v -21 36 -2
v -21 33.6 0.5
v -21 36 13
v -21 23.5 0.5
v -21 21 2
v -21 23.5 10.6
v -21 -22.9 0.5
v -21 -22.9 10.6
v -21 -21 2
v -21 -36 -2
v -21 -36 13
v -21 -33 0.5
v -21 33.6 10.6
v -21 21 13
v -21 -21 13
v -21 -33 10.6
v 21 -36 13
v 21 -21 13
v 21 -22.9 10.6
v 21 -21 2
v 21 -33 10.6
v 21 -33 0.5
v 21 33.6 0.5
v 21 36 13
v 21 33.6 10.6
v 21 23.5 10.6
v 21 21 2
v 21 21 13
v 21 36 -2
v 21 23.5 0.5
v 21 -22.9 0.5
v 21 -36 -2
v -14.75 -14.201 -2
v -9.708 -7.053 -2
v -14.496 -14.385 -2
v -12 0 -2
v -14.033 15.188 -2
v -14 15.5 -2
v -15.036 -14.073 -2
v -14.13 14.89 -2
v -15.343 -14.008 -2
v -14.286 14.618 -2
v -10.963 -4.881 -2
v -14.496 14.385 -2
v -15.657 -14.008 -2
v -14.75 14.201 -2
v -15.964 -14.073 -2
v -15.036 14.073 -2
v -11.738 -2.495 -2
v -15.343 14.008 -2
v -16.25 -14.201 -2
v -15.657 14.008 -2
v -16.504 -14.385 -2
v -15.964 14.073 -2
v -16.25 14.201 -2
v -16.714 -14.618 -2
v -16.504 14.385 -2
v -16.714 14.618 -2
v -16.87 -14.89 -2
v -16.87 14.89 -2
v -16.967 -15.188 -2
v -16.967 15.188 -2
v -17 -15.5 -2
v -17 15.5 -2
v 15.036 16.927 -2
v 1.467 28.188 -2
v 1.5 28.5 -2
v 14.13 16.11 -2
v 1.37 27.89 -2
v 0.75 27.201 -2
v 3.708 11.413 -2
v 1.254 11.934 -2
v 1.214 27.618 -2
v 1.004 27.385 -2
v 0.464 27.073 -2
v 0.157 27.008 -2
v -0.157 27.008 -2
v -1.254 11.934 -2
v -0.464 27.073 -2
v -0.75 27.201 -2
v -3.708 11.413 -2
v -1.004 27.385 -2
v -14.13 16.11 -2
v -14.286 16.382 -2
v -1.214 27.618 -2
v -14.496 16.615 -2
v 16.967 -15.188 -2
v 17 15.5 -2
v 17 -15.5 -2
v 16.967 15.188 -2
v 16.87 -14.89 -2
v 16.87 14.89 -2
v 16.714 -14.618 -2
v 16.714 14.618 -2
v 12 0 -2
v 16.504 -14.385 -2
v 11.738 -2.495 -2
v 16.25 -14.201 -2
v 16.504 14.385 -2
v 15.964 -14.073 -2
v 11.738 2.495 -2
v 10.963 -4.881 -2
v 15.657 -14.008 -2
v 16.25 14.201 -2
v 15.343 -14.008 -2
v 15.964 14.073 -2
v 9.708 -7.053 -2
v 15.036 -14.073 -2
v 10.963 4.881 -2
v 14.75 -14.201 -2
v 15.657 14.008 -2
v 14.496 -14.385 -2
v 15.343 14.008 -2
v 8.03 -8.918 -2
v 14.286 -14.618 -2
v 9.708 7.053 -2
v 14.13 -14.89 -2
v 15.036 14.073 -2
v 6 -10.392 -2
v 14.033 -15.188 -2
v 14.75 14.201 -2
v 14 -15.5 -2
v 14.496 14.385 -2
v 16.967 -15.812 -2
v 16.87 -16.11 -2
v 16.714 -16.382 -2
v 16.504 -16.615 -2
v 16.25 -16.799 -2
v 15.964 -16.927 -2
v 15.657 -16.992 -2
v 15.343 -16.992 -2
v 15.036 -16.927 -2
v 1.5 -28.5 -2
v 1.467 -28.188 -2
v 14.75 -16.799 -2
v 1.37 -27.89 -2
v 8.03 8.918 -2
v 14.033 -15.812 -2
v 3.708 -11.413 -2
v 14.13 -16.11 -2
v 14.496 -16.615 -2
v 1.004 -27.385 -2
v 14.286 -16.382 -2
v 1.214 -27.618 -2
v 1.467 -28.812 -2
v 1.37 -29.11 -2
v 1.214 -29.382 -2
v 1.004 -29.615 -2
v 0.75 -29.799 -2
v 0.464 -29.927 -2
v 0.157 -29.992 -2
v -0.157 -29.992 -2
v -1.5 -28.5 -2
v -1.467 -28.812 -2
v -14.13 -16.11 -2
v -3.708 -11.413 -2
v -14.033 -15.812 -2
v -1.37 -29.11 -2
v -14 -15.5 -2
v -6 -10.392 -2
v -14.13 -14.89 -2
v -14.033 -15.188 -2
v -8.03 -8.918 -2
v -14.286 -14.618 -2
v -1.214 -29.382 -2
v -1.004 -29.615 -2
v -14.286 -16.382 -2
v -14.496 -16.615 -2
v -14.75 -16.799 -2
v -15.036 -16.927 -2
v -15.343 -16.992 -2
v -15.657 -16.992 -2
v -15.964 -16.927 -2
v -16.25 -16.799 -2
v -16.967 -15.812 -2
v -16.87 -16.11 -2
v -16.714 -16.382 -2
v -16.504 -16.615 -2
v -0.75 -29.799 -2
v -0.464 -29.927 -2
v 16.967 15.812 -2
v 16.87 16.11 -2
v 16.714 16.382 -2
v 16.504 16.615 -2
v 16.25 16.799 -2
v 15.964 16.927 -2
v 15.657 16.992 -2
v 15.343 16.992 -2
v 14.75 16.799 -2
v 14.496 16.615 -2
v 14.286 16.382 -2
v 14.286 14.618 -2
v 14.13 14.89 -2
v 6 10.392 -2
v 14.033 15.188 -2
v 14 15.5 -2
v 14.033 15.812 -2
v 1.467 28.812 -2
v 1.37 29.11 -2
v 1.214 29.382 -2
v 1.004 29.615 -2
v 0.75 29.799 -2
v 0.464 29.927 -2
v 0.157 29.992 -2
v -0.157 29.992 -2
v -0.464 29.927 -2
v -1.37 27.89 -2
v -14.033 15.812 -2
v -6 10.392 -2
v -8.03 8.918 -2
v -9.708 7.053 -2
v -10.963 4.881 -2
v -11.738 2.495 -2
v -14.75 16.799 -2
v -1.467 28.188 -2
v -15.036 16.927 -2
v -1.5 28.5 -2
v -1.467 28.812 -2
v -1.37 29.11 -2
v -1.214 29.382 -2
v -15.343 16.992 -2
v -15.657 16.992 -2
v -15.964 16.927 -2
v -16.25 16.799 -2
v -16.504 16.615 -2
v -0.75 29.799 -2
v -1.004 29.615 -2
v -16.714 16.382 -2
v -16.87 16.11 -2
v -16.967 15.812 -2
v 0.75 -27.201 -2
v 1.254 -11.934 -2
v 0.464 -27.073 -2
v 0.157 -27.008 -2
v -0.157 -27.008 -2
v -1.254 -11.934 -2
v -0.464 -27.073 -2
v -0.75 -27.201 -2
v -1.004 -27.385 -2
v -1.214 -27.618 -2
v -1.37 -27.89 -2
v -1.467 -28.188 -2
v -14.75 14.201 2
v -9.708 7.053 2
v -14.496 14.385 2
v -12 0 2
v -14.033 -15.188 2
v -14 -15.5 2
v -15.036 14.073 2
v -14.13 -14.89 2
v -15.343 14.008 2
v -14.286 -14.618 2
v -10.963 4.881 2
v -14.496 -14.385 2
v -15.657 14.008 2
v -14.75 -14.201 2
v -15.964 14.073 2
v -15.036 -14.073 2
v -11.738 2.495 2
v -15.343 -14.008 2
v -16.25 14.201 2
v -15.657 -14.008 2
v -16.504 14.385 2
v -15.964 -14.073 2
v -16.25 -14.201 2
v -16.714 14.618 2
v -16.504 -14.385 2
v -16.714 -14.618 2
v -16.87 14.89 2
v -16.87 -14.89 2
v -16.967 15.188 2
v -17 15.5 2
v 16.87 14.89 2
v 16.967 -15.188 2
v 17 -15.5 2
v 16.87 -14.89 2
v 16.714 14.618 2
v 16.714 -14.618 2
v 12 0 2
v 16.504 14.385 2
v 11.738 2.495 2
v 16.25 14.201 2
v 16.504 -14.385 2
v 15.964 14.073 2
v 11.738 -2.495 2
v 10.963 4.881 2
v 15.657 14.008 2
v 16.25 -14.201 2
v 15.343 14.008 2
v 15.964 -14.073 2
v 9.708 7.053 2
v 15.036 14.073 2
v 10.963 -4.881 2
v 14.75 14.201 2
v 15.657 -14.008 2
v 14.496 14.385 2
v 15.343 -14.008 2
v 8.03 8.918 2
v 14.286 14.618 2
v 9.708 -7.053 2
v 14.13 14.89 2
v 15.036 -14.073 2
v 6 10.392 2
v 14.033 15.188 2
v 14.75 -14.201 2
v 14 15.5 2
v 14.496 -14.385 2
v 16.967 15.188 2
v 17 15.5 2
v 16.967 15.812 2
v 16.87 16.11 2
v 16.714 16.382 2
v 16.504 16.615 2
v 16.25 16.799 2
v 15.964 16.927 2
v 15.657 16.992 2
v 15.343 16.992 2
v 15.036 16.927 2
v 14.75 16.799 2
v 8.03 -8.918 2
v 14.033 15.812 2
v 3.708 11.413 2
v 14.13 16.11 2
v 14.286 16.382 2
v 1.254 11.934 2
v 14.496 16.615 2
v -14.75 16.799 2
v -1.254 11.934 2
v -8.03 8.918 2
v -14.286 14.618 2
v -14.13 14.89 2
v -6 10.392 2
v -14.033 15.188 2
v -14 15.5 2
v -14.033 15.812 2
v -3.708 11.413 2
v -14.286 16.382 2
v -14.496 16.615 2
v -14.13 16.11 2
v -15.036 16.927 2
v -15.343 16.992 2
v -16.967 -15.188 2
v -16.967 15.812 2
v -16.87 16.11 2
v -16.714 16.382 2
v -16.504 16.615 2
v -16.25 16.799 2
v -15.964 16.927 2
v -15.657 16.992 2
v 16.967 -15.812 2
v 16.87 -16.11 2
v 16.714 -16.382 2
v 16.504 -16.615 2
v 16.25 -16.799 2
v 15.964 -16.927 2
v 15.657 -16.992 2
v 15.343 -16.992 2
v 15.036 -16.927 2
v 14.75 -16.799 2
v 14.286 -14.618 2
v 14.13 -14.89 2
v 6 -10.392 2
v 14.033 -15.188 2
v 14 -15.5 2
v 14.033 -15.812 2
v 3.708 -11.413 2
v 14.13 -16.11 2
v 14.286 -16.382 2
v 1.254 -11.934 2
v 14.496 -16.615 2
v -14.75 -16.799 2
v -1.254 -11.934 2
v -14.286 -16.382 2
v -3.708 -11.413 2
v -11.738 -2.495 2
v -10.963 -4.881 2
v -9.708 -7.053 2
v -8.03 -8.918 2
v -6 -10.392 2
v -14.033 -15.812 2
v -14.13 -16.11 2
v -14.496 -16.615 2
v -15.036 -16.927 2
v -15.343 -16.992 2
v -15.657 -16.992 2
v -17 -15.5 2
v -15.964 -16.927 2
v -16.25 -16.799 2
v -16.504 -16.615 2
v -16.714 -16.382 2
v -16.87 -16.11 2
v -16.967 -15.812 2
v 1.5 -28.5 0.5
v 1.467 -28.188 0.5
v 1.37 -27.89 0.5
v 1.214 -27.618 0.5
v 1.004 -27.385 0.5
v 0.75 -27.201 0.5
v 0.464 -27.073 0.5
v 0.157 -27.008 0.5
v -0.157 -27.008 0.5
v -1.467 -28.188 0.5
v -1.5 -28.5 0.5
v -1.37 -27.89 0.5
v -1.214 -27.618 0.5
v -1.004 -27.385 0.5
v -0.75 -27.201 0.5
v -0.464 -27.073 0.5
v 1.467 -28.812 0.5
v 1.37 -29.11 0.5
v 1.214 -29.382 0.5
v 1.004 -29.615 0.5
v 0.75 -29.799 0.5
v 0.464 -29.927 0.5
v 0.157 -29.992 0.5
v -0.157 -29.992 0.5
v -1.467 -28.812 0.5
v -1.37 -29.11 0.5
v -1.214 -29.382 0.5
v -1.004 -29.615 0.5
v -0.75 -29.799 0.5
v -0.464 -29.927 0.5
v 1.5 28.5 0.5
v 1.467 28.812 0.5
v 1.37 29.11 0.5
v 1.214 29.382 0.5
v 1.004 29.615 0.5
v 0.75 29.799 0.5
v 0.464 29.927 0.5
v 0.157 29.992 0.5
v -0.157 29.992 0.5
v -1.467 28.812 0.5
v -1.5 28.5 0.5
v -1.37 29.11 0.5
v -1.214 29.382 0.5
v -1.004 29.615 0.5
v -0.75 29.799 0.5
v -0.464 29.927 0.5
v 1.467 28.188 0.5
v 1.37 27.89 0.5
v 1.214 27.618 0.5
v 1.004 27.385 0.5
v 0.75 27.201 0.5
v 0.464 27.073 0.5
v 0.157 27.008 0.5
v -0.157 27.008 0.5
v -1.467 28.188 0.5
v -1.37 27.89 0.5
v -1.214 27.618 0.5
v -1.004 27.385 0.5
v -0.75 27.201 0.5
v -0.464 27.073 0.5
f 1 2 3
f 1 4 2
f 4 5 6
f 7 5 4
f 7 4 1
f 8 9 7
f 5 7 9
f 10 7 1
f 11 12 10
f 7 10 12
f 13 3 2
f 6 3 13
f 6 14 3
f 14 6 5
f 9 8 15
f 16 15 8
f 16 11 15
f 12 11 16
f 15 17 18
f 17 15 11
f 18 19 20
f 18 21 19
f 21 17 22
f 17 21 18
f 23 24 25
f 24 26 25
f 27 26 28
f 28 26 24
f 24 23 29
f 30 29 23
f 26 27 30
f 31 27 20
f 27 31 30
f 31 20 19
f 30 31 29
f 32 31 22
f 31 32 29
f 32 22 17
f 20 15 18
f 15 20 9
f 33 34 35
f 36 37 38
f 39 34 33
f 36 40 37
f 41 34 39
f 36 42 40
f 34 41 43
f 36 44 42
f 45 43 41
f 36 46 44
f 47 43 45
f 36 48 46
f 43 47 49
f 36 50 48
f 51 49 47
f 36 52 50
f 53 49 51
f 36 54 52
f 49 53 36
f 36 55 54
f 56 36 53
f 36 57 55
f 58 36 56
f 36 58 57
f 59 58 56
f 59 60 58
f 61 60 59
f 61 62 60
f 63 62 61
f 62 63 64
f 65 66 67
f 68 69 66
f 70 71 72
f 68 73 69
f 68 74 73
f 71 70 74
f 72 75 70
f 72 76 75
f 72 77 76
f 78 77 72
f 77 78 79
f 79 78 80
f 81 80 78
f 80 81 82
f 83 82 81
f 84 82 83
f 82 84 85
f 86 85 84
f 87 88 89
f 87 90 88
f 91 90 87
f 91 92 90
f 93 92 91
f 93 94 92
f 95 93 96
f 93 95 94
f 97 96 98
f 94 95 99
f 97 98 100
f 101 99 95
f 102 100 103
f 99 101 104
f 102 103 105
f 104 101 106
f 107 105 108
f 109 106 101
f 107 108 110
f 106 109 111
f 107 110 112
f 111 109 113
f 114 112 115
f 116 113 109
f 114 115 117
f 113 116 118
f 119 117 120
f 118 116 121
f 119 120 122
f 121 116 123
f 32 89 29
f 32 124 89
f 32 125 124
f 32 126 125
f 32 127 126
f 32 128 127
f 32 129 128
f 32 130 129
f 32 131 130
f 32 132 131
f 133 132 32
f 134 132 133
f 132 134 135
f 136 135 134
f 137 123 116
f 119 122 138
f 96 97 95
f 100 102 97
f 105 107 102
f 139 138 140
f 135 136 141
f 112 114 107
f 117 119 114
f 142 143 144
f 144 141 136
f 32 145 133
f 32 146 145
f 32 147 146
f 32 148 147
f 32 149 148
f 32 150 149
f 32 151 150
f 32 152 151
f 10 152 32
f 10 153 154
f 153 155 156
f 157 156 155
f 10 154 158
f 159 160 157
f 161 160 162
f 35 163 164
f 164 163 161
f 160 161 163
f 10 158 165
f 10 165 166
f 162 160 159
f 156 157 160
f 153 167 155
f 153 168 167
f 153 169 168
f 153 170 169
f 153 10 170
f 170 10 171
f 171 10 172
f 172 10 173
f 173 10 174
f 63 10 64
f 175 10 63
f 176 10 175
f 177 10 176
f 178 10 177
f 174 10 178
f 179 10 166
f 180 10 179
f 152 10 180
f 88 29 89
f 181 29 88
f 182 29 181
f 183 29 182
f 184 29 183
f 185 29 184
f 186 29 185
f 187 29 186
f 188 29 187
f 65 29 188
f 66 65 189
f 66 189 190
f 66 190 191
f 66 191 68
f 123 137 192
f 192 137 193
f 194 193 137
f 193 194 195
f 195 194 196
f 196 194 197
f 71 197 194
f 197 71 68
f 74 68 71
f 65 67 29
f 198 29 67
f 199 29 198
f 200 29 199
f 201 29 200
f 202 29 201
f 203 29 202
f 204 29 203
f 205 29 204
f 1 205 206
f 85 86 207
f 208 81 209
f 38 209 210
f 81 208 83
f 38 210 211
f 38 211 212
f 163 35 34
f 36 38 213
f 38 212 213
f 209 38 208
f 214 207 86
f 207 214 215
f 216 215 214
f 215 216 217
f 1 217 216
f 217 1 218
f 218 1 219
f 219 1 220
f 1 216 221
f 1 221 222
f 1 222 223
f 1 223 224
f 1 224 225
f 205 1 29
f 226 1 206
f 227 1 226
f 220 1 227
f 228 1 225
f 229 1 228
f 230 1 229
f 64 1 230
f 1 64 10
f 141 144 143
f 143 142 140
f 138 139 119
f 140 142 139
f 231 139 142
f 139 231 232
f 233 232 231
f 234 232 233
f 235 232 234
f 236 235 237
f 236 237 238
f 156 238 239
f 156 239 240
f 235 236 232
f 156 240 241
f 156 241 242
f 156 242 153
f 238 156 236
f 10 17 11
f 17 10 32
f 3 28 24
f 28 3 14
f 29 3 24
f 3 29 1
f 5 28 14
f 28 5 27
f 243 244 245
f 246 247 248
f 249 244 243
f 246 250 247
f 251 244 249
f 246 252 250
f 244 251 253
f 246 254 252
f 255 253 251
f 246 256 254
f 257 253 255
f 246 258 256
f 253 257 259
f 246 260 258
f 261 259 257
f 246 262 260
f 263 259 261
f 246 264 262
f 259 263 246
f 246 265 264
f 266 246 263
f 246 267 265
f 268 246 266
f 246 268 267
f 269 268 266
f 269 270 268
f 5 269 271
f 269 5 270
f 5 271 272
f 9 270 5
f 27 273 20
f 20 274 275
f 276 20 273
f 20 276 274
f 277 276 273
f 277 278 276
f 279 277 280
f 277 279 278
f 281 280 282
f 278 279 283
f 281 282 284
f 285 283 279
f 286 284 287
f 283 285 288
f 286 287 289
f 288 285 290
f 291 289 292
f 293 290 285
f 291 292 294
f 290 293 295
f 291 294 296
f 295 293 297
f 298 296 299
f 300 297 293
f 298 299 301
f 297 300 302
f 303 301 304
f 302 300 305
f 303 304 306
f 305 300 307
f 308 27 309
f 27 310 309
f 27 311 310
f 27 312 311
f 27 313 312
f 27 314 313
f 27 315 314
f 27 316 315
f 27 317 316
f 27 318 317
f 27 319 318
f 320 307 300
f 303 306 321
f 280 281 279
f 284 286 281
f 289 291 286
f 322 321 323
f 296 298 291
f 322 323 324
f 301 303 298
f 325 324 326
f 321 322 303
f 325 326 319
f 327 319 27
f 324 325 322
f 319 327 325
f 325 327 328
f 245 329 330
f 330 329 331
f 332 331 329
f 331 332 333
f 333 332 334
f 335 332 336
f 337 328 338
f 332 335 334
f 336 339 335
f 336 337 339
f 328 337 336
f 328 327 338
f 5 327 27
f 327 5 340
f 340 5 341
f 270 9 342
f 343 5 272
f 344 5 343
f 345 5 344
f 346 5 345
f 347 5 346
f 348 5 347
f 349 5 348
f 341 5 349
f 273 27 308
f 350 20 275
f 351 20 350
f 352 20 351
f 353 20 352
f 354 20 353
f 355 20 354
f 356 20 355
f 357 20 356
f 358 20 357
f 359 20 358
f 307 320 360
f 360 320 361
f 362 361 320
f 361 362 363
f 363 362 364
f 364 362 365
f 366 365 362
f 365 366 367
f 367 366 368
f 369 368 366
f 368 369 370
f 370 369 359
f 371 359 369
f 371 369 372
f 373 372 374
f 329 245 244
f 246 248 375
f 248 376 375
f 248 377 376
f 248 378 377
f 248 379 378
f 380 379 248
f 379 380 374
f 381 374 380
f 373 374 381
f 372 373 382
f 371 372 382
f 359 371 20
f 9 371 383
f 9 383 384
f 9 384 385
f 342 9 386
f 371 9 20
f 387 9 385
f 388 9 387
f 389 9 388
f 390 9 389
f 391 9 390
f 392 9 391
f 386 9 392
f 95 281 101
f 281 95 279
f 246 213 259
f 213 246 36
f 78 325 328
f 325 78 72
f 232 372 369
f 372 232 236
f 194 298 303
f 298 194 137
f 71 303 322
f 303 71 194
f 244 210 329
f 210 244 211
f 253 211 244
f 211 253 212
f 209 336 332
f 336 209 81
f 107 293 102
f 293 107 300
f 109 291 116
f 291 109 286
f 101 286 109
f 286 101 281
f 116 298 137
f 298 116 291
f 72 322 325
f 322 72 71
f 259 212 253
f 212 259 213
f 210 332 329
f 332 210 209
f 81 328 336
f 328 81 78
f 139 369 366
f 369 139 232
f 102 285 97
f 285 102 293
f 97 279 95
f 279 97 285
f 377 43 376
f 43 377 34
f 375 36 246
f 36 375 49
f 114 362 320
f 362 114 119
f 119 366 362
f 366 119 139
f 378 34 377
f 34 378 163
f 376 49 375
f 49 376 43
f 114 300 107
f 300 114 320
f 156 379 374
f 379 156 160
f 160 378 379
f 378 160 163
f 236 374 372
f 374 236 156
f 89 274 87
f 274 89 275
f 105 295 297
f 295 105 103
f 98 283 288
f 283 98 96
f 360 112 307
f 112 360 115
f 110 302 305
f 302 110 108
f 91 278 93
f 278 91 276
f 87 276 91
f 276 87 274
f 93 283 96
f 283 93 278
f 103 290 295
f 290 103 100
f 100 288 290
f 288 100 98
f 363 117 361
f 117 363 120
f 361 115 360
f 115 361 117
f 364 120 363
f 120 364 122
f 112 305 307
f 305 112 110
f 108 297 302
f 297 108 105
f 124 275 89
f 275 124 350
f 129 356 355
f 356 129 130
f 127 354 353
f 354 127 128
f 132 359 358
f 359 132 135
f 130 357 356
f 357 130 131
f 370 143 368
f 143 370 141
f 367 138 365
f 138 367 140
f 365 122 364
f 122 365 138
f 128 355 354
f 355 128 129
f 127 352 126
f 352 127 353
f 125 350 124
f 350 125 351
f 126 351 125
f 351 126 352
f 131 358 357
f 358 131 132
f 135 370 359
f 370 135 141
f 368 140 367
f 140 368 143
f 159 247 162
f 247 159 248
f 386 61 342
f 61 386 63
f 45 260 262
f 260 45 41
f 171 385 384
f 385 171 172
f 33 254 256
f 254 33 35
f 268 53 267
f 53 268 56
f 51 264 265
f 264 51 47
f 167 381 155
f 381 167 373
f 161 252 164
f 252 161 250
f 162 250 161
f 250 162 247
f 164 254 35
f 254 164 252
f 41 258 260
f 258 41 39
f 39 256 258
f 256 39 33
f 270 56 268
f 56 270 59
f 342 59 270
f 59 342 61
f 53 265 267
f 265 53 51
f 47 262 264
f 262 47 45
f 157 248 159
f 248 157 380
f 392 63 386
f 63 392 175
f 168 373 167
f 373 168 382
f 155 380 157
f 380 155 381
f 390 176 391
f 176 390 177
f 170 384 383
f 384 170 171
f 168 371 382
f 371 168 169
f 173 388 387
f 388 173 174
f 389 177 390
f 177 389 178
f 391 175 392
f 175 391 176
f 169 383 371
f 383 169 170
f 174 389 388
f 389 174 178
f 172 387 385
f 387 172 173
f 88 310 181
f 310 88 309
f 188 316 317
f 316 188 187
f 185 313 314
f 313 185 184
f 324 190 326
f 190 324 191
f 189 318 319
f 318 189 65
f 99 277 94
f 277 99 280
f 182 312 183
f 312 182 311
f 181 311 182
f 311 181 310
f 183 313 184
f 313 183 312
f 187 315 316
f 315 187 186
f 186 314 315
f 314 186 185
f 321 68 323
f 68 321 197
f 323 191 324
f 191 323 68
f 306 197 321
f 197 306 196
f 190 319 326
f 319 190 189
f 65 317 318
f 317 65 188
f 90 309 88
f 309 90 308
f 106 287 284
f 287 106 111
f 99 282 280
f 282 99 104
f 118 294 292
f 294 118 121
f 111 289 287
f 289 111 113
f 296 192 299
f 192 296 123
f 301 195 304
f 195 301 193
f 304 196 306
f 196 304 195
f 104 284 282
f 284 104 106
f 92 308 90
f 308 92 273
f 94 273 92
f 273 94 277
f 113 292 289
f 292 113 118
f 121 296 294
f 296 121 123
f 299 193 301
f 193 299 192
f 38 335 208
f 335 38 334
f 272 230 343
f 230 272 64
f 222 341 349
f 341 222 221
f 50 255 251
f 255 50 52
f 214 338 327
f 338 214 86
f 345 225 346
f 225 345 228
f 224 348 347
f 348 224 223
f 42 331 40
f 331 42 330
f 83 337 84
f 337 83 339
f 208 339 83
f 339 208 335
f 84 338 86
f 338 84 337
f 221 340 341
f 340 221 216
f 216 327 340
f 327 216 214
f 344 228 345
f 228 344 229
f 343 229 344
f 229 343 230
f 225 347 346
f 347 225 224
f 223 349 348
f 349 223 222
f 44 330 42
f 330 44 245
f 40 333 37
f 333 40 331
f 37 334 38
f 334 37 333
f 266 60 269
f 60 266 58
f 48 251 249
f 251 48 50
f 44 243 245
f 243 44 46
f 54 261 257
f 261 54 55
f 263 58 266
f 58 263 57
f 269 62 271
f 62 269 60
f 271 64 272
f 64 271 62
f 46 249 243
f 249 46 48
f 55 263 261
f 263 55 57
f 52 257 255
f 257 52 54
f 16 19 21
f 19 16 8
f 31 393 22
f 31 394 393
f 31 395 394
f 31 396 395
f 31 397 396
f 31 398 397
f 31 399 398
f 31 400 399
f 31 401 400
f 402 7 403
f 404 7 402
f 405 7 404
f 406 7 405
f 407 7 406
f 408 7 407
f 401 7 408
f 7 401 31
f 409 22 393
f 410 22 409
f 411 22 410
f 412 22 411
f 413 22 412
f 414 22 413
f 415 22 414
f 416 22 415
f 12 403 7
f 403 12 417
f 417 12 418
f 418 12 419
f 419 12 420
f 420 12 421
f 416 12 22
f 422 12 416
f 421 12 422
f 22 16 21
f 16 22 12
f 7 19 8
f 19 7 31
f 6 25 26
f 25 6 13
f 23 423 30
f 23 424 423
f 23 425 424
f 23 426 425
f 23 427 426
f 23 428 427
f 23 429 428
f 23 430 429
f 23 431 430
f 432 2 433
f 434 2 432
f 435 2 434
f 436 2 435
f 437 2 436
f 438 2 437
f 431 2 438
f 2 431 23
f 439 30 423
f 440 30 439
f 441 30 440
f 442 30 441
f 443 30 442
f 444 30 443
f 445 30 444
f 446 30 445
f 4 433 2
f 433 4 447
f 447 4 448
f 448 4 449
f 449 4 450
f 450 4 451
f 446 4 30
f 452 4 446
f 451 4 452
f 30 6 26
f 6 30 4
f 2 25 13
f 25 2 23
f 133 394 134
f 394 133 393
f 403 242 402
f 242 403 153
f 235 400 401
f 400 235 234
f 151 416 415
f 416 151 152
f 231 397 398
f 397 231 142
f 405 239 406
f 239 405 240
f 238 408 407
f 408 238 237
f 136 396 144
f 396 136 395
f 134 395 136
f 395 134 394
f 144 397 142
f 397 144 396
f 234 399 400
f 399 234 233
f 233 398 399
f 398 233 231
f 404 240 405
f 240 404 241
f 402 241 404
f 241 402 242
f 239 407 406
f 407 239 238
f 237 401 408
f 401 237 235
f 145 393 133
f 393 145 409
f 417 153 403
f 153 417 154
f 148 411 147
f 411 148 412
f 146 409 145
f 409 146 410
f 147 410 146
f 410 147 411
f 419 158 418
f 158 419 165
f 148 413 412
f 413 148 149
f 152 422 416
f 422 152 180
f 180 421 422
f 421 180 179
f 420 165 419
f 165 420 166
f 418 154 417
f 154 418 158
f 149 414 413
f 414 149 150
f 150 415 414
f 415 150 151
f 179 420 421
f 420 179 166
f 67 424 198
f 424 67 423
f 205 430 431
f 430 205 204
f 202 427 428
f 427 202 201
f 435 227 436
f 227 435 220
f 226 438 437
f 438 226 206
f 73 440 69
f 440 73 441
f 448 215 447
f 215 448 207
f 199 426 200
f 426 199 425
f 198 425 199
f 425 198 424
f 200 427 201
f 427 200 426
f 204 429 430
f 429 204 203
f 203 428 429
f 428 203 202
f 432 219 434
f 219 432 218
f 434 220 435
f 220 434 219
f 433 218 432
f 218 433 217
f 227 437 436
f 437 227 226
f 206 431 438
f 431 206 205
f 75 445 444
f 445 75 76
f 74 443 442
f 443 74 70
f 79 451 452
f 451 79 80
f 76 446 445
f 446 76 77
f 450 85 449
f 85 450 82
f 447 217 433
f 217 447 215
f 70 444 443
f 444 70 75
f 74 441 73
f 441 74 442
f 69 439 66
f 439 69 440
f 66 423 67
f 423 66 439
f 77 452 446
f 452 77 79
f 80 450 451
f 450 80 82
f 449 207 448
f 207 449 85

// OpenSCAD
// =============================================
module gehauseUnten(t=[0,0,0],r=[0,0,0]) {
    translate(t)rotate(r)difference(){
      union(){
        translate([-42/2,-42/2-15,-0-2])cube([42,15,15]);
        translate([-42/2,+42/2,-0-2])cube([42,15,15]);
        translate([-42/2,-42/2,-0-2])cube([42,42,4]);
      }
      translate([0,0,-15-2.5])cylinder(r=24/2,5, h=30);
        
      translate([+15.5,-15.5,-0-2.5])cylinder(r=3/2,5, h=30, $fn=30);
      translate([-15.5,-15.5,-0-2.5])cylinder(r=3/2,5, h=30, $fn=30);
      translate([+15.5,+15.5,-0-2.5])cylinder(r=3/2,5, h=30, $fn=30);
      translate([-15.5,+15.5,-0-2.5])cylinder(r=3/2,5, h=30, $fn=30);
      
      
        translate([-50/2,-42/2-10-2,0.5])cube([50,10.1,10.1]);
        translate([-50/2,+42/2+2.5 ,0.5])cube([50,10.1,10.1]);
      
      translate([+56/2,+56/2,-18-0])rotate([0,0,0])cylinder(r=2,h=20, $fn=30);
      translate([+56/2,-56/2,-18-0])rotate([0,0,0])cylinder(r=2,h=20, $fn=30);
      translate([-56/2,+56/2,-18-0])rotate([0,0,0])cylinder(r=2,h=20, $fn=30);  
      translate([-56/2,-56/2,-18-0])rotate([0,0,0])cylinder(r=2,h=20, $fn=30); 
      translate([0,-57/2,-18-0])rotate([0,0,0])cylinder(r=1.5,h=20, $fn=30);
      translate([0,+57/2,-18-0])rotate([0,0,0])cylinder(r=1.5,h=20, $fn=30);
    }

}

gehauseUnten(t=[0,0,0],r=[0,0,0], ex=9.9);
